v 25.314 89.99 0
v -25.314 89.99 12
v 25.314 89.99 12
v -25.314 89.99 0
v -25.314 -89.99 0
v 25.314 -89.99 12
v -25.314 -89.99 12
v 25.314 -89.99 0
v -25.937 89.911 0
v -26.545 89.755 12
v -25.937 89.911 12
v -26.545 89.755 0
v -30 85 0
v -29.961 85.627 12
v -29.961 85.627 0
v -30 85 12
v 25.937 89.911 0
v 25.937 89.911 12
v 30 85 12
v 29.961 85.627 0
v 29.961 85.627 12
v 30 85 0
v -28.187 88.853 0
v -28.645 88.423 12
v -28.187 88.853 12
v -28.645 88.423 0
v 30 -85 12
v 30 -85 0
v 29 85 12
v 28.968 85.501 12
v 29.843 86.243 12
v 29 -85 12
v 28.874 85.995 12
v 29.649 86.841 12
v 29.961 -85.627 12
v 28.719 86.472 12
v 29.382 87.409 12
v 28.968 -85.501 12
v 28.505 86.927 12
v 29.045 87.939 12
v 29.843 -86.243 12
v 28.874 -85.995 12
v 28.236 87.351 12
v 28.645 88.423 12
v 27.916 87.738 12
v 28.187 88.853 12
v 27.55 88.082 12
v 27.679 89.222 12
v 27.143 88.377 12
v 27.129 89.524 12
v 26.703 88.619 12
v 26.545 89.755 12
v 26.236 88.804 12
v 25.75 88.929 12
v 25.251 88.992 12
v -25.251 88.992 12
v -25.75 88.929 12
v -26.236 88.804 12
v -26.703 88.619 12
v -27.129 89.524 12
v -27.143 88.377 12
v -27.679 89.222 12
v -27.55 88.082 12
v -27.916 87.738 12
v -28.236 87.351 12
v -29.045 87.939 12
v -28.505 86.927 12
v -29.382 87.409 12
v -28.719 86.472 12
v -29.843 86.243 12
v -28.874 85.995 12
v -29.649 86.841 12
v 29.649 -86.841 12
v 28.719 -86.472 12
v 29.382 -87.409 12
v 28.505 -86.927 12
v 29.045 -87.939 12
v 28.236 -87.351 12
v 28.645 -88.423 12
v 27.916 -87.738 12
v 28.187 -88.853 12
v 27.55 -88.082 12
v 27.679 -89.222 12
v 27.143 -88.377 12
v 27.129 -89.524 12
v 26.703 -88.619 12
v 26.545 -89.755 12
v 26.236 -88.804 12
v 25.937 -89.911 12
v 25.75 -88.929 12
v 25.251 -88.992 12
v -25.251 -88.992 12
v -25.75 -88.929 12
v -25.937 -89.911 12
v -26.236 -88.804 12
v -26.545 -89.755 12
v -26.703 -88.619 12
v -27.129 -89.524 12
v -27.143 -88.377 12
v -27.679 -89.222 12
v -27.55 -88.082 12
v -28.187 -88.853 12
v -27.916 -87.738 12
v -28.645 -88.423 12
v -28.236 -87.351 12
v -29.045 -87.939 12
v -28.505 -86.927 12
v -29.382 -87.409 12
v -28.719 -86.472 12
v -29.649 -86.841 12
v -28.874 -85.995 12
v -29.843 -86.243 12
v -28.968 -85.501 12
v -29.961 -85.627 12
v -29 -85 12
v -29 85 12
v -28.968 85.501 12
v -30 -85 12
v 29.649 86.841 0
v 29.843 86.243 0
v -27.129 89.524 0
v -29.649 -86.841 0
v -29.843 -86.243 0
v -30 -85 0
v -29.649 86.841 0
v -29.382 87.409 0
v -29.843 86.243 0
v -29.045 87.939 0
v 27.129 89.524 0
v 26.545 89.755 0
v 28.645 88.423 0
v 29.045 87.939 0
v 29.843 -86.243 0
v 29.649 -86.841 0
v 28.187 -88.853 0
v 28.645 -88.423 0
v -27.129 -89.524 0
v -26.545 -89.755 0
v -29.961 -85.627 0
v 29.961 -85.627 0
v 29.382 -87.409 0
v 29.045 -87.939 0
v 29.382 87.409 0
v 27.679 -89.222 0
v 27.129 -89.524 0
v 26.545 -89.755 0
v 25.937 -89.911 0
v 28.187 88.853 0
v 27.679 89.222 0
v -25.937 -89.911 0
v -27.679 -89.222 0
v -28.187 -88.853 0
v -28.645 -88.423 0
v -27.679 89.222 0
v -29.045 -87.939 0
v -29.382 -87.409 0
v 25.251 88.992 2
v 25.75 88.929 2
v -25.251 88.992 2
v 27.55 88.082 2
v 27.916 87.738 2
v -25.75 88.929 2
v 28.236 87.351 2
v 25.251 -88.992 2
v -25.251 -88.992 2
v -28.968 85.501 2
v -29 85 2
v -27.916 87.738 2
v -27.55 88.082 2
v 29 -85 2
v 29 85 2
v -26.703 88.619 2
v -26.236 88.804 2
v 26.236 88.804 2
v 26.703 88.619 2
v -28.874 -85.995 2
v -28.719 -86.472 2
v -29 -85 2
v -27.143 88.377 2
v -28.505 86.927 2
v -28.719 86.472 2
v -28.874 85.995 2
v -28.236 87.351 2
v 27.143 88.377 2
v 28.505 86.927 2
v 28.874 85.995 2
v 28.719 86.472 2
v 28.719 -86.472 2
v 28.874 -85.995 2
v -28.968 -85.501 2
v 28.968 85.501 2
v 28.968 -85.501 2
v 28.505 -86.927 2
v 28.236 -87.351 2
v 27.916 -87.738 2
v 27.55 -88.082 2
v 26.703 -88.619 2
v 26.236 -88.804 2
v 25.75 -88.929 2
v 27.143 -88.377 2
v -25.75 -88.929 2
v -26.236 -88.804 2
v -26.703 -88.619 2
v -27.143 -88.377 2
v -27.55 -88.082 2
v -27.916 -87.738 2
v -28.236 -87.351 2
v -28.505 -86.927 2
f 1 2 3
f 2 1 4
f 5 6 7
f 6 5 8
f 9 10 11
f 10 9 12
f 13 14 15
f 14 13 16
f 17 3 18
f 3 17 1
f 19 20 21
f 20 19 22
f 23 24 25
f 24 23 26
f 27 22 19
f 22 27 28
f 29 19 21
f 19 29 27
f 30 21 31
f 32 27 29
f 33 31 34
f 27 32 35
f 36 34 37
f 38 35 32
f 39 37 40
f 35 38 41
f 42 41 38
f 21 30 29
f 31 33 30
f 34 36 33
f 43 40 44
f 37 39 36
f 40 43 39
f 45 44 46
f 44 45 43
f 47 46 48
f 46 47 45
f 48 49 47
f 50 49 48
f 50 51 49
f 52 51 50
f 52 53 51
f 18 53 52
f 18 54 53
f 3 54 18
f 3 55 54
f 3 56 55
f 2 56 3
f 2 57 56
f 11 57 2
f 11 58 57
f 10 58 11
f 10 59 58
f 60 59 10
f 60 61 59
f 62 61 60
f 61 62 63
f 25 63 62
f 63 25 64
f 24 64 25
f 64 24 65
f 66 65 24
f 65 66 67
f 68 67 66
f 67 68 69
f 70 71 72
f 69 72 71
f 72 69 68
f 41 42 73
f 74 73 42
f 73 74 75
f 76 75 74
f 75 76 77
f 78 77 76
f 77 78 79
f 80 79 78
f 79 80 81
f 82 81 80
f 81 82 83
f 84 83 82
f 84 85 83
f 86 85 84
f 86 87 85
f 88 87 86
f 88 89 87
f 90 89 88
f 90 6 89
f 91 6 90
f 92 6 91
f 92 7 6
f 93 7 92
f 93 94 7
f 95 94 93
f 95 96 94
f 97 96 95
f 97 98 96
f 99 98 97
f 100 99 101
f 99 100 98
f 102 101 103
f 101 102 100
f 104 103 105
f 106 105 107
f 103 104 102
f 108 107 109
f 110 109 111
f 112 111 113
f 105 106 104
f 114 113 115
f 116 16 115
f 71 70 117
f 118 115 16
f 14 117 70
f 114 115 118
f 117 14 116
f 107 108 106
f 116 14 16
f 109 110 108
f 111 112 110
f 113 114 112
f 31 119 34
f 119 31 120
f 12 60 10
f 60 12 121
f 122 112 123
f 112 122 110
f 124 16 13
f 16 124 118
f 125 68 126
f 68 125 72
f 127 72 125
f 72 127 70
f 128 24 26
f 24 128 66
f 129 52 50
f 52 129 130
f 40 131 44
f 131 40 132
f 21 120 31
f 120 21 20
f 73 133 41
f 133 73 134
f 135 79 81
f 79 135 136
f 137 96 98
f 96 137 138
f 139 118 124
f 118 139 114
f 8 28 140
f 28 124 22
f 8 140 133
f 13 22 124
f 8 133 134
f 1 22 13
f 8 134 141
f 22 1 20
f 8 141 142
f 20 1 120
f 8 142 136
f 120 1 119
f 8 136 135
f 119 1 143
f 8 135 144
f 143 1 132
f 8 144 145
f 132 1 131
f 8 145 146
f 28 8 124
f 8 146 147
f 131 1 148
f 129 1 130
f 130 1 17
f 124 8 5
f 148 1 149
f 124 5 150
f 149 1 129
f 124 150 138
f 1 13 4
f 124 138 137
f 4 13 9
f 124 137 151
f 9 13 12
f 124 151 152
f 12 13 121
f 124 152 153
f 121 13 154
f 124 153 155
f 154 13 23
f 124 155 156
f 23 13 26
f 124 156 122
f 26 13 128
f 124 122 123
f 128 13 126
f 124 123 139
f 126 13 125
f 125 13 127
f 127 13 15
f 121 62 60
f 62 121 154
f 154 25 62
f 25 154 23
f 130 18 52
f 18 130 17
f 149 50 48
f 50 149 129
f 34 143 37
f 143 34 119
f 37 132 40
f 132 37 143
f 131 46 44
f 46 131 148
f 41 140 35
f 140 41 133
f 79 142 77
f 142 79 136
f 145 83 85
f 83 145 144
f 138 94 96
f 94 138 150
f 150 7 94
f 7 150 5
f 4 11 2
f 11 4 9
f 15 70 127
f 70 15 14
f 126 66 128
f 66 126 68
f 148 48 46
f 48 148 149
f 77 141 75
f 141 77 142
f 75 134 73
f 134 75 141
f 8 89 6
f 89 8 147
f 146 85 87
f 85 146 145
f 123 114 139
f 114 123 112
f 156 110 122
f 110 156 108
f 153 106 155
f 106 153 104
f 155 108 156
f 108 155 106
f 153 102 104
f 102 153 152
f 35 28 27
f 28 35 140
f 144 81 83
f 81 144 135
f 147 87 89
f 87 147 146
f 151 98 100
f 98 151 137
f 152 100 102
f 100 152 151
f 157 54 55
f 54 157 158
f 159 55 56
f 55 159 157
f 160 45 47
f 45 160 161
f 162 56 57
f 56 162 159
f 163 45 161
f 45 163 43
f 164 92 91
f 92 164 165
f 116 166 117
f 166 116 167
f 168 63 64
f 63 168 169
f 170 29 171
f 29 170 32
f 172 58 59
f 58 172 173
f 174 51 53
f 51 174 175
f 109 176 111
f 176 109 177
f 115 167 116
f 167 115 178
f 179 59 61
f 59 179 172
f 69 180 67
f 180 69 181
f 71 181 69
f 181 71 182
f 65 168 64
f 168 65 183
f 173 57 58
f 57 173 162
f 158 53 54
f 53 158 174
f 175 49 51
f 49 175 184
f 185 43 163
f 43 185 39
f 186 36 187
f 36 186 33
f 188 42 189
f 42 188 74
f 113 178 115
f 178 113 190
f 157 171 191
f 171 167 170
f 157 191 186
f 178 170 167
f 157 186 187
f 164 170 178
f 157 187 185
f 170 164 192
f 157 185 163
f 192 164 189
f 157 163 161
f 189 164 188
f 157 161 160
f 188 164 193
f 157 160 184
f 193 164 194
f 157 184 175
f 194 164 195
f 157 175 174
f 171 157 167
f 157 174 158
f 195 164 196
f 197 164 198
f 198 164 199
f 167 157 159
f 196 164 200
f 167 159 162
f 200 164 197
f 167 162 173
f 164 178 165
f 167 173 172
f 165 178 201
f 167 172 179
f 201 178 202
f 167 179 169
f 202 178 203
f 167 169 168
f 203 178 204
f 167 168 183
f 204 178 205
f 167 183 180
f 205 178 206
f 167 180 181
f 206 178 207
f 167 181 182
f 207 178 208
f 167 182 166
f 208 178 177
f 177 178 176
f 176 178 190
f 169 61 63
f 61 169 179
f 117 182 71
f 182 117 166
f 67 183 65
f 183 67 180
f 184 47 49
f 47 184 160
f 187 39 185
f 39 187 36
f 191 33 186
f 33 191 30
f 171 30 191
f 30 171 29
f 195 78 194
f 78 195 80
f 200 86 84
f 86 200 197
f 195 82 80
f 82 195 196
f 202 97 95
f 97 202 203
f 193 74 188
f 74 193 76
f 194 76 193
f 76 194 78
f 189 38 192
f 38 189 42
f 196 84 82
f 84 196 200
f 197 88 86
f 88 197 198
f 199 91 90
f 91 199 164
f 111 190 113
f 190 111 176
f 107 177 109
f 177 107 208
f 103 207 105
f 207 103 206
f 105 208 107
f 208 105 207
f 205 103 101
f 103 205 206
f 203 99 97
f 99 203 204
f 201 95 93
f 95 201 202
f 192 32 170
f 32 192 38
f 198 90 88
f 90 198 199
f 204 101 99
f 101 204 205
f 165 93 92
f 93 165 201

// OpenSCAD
$fn = 50;


difference() {
	union() {
		hull() {
			translate(v = [-25.0000000000, 85.0000000000, 0]) {
				cylinder(h = 12, r = 5);
			}
			translate(v = [25.0000000000, 85.0000000000, 0]) {
				cylinder(h = 12, r = 5);
			}
			translate(v = [-25.0000000000, -85.0000000000, 0]) {
				cylinder(h = 12, r = 5);
			}
			translate(v = [25.0000000000, -85.0000000000, 0]) {
				cylinder(h = 12, r = 5);
			}
		}
	}
	union() {
		translate(v = [0, 0, 2]) {
			hull() {
				translate(v = [-25.0000000000, 85.0000000000, 0]) {
					cylinder(h = 10, r = 4);
				}
				translate(v = [25.0000000000, 85.0000000000, 0]) {
					cylinder(h = 10, r = 4);
				}
				translate(v = [-25.0000000000, -85.0000000000, 0]) {
					cylinder(h = 10, r = 4);
				}
				translate(v = [25.0000000000, -85.0000000000, 0]) {
					cylinder(h = 10, r = 4);
				}
			}
		}
	}
}
